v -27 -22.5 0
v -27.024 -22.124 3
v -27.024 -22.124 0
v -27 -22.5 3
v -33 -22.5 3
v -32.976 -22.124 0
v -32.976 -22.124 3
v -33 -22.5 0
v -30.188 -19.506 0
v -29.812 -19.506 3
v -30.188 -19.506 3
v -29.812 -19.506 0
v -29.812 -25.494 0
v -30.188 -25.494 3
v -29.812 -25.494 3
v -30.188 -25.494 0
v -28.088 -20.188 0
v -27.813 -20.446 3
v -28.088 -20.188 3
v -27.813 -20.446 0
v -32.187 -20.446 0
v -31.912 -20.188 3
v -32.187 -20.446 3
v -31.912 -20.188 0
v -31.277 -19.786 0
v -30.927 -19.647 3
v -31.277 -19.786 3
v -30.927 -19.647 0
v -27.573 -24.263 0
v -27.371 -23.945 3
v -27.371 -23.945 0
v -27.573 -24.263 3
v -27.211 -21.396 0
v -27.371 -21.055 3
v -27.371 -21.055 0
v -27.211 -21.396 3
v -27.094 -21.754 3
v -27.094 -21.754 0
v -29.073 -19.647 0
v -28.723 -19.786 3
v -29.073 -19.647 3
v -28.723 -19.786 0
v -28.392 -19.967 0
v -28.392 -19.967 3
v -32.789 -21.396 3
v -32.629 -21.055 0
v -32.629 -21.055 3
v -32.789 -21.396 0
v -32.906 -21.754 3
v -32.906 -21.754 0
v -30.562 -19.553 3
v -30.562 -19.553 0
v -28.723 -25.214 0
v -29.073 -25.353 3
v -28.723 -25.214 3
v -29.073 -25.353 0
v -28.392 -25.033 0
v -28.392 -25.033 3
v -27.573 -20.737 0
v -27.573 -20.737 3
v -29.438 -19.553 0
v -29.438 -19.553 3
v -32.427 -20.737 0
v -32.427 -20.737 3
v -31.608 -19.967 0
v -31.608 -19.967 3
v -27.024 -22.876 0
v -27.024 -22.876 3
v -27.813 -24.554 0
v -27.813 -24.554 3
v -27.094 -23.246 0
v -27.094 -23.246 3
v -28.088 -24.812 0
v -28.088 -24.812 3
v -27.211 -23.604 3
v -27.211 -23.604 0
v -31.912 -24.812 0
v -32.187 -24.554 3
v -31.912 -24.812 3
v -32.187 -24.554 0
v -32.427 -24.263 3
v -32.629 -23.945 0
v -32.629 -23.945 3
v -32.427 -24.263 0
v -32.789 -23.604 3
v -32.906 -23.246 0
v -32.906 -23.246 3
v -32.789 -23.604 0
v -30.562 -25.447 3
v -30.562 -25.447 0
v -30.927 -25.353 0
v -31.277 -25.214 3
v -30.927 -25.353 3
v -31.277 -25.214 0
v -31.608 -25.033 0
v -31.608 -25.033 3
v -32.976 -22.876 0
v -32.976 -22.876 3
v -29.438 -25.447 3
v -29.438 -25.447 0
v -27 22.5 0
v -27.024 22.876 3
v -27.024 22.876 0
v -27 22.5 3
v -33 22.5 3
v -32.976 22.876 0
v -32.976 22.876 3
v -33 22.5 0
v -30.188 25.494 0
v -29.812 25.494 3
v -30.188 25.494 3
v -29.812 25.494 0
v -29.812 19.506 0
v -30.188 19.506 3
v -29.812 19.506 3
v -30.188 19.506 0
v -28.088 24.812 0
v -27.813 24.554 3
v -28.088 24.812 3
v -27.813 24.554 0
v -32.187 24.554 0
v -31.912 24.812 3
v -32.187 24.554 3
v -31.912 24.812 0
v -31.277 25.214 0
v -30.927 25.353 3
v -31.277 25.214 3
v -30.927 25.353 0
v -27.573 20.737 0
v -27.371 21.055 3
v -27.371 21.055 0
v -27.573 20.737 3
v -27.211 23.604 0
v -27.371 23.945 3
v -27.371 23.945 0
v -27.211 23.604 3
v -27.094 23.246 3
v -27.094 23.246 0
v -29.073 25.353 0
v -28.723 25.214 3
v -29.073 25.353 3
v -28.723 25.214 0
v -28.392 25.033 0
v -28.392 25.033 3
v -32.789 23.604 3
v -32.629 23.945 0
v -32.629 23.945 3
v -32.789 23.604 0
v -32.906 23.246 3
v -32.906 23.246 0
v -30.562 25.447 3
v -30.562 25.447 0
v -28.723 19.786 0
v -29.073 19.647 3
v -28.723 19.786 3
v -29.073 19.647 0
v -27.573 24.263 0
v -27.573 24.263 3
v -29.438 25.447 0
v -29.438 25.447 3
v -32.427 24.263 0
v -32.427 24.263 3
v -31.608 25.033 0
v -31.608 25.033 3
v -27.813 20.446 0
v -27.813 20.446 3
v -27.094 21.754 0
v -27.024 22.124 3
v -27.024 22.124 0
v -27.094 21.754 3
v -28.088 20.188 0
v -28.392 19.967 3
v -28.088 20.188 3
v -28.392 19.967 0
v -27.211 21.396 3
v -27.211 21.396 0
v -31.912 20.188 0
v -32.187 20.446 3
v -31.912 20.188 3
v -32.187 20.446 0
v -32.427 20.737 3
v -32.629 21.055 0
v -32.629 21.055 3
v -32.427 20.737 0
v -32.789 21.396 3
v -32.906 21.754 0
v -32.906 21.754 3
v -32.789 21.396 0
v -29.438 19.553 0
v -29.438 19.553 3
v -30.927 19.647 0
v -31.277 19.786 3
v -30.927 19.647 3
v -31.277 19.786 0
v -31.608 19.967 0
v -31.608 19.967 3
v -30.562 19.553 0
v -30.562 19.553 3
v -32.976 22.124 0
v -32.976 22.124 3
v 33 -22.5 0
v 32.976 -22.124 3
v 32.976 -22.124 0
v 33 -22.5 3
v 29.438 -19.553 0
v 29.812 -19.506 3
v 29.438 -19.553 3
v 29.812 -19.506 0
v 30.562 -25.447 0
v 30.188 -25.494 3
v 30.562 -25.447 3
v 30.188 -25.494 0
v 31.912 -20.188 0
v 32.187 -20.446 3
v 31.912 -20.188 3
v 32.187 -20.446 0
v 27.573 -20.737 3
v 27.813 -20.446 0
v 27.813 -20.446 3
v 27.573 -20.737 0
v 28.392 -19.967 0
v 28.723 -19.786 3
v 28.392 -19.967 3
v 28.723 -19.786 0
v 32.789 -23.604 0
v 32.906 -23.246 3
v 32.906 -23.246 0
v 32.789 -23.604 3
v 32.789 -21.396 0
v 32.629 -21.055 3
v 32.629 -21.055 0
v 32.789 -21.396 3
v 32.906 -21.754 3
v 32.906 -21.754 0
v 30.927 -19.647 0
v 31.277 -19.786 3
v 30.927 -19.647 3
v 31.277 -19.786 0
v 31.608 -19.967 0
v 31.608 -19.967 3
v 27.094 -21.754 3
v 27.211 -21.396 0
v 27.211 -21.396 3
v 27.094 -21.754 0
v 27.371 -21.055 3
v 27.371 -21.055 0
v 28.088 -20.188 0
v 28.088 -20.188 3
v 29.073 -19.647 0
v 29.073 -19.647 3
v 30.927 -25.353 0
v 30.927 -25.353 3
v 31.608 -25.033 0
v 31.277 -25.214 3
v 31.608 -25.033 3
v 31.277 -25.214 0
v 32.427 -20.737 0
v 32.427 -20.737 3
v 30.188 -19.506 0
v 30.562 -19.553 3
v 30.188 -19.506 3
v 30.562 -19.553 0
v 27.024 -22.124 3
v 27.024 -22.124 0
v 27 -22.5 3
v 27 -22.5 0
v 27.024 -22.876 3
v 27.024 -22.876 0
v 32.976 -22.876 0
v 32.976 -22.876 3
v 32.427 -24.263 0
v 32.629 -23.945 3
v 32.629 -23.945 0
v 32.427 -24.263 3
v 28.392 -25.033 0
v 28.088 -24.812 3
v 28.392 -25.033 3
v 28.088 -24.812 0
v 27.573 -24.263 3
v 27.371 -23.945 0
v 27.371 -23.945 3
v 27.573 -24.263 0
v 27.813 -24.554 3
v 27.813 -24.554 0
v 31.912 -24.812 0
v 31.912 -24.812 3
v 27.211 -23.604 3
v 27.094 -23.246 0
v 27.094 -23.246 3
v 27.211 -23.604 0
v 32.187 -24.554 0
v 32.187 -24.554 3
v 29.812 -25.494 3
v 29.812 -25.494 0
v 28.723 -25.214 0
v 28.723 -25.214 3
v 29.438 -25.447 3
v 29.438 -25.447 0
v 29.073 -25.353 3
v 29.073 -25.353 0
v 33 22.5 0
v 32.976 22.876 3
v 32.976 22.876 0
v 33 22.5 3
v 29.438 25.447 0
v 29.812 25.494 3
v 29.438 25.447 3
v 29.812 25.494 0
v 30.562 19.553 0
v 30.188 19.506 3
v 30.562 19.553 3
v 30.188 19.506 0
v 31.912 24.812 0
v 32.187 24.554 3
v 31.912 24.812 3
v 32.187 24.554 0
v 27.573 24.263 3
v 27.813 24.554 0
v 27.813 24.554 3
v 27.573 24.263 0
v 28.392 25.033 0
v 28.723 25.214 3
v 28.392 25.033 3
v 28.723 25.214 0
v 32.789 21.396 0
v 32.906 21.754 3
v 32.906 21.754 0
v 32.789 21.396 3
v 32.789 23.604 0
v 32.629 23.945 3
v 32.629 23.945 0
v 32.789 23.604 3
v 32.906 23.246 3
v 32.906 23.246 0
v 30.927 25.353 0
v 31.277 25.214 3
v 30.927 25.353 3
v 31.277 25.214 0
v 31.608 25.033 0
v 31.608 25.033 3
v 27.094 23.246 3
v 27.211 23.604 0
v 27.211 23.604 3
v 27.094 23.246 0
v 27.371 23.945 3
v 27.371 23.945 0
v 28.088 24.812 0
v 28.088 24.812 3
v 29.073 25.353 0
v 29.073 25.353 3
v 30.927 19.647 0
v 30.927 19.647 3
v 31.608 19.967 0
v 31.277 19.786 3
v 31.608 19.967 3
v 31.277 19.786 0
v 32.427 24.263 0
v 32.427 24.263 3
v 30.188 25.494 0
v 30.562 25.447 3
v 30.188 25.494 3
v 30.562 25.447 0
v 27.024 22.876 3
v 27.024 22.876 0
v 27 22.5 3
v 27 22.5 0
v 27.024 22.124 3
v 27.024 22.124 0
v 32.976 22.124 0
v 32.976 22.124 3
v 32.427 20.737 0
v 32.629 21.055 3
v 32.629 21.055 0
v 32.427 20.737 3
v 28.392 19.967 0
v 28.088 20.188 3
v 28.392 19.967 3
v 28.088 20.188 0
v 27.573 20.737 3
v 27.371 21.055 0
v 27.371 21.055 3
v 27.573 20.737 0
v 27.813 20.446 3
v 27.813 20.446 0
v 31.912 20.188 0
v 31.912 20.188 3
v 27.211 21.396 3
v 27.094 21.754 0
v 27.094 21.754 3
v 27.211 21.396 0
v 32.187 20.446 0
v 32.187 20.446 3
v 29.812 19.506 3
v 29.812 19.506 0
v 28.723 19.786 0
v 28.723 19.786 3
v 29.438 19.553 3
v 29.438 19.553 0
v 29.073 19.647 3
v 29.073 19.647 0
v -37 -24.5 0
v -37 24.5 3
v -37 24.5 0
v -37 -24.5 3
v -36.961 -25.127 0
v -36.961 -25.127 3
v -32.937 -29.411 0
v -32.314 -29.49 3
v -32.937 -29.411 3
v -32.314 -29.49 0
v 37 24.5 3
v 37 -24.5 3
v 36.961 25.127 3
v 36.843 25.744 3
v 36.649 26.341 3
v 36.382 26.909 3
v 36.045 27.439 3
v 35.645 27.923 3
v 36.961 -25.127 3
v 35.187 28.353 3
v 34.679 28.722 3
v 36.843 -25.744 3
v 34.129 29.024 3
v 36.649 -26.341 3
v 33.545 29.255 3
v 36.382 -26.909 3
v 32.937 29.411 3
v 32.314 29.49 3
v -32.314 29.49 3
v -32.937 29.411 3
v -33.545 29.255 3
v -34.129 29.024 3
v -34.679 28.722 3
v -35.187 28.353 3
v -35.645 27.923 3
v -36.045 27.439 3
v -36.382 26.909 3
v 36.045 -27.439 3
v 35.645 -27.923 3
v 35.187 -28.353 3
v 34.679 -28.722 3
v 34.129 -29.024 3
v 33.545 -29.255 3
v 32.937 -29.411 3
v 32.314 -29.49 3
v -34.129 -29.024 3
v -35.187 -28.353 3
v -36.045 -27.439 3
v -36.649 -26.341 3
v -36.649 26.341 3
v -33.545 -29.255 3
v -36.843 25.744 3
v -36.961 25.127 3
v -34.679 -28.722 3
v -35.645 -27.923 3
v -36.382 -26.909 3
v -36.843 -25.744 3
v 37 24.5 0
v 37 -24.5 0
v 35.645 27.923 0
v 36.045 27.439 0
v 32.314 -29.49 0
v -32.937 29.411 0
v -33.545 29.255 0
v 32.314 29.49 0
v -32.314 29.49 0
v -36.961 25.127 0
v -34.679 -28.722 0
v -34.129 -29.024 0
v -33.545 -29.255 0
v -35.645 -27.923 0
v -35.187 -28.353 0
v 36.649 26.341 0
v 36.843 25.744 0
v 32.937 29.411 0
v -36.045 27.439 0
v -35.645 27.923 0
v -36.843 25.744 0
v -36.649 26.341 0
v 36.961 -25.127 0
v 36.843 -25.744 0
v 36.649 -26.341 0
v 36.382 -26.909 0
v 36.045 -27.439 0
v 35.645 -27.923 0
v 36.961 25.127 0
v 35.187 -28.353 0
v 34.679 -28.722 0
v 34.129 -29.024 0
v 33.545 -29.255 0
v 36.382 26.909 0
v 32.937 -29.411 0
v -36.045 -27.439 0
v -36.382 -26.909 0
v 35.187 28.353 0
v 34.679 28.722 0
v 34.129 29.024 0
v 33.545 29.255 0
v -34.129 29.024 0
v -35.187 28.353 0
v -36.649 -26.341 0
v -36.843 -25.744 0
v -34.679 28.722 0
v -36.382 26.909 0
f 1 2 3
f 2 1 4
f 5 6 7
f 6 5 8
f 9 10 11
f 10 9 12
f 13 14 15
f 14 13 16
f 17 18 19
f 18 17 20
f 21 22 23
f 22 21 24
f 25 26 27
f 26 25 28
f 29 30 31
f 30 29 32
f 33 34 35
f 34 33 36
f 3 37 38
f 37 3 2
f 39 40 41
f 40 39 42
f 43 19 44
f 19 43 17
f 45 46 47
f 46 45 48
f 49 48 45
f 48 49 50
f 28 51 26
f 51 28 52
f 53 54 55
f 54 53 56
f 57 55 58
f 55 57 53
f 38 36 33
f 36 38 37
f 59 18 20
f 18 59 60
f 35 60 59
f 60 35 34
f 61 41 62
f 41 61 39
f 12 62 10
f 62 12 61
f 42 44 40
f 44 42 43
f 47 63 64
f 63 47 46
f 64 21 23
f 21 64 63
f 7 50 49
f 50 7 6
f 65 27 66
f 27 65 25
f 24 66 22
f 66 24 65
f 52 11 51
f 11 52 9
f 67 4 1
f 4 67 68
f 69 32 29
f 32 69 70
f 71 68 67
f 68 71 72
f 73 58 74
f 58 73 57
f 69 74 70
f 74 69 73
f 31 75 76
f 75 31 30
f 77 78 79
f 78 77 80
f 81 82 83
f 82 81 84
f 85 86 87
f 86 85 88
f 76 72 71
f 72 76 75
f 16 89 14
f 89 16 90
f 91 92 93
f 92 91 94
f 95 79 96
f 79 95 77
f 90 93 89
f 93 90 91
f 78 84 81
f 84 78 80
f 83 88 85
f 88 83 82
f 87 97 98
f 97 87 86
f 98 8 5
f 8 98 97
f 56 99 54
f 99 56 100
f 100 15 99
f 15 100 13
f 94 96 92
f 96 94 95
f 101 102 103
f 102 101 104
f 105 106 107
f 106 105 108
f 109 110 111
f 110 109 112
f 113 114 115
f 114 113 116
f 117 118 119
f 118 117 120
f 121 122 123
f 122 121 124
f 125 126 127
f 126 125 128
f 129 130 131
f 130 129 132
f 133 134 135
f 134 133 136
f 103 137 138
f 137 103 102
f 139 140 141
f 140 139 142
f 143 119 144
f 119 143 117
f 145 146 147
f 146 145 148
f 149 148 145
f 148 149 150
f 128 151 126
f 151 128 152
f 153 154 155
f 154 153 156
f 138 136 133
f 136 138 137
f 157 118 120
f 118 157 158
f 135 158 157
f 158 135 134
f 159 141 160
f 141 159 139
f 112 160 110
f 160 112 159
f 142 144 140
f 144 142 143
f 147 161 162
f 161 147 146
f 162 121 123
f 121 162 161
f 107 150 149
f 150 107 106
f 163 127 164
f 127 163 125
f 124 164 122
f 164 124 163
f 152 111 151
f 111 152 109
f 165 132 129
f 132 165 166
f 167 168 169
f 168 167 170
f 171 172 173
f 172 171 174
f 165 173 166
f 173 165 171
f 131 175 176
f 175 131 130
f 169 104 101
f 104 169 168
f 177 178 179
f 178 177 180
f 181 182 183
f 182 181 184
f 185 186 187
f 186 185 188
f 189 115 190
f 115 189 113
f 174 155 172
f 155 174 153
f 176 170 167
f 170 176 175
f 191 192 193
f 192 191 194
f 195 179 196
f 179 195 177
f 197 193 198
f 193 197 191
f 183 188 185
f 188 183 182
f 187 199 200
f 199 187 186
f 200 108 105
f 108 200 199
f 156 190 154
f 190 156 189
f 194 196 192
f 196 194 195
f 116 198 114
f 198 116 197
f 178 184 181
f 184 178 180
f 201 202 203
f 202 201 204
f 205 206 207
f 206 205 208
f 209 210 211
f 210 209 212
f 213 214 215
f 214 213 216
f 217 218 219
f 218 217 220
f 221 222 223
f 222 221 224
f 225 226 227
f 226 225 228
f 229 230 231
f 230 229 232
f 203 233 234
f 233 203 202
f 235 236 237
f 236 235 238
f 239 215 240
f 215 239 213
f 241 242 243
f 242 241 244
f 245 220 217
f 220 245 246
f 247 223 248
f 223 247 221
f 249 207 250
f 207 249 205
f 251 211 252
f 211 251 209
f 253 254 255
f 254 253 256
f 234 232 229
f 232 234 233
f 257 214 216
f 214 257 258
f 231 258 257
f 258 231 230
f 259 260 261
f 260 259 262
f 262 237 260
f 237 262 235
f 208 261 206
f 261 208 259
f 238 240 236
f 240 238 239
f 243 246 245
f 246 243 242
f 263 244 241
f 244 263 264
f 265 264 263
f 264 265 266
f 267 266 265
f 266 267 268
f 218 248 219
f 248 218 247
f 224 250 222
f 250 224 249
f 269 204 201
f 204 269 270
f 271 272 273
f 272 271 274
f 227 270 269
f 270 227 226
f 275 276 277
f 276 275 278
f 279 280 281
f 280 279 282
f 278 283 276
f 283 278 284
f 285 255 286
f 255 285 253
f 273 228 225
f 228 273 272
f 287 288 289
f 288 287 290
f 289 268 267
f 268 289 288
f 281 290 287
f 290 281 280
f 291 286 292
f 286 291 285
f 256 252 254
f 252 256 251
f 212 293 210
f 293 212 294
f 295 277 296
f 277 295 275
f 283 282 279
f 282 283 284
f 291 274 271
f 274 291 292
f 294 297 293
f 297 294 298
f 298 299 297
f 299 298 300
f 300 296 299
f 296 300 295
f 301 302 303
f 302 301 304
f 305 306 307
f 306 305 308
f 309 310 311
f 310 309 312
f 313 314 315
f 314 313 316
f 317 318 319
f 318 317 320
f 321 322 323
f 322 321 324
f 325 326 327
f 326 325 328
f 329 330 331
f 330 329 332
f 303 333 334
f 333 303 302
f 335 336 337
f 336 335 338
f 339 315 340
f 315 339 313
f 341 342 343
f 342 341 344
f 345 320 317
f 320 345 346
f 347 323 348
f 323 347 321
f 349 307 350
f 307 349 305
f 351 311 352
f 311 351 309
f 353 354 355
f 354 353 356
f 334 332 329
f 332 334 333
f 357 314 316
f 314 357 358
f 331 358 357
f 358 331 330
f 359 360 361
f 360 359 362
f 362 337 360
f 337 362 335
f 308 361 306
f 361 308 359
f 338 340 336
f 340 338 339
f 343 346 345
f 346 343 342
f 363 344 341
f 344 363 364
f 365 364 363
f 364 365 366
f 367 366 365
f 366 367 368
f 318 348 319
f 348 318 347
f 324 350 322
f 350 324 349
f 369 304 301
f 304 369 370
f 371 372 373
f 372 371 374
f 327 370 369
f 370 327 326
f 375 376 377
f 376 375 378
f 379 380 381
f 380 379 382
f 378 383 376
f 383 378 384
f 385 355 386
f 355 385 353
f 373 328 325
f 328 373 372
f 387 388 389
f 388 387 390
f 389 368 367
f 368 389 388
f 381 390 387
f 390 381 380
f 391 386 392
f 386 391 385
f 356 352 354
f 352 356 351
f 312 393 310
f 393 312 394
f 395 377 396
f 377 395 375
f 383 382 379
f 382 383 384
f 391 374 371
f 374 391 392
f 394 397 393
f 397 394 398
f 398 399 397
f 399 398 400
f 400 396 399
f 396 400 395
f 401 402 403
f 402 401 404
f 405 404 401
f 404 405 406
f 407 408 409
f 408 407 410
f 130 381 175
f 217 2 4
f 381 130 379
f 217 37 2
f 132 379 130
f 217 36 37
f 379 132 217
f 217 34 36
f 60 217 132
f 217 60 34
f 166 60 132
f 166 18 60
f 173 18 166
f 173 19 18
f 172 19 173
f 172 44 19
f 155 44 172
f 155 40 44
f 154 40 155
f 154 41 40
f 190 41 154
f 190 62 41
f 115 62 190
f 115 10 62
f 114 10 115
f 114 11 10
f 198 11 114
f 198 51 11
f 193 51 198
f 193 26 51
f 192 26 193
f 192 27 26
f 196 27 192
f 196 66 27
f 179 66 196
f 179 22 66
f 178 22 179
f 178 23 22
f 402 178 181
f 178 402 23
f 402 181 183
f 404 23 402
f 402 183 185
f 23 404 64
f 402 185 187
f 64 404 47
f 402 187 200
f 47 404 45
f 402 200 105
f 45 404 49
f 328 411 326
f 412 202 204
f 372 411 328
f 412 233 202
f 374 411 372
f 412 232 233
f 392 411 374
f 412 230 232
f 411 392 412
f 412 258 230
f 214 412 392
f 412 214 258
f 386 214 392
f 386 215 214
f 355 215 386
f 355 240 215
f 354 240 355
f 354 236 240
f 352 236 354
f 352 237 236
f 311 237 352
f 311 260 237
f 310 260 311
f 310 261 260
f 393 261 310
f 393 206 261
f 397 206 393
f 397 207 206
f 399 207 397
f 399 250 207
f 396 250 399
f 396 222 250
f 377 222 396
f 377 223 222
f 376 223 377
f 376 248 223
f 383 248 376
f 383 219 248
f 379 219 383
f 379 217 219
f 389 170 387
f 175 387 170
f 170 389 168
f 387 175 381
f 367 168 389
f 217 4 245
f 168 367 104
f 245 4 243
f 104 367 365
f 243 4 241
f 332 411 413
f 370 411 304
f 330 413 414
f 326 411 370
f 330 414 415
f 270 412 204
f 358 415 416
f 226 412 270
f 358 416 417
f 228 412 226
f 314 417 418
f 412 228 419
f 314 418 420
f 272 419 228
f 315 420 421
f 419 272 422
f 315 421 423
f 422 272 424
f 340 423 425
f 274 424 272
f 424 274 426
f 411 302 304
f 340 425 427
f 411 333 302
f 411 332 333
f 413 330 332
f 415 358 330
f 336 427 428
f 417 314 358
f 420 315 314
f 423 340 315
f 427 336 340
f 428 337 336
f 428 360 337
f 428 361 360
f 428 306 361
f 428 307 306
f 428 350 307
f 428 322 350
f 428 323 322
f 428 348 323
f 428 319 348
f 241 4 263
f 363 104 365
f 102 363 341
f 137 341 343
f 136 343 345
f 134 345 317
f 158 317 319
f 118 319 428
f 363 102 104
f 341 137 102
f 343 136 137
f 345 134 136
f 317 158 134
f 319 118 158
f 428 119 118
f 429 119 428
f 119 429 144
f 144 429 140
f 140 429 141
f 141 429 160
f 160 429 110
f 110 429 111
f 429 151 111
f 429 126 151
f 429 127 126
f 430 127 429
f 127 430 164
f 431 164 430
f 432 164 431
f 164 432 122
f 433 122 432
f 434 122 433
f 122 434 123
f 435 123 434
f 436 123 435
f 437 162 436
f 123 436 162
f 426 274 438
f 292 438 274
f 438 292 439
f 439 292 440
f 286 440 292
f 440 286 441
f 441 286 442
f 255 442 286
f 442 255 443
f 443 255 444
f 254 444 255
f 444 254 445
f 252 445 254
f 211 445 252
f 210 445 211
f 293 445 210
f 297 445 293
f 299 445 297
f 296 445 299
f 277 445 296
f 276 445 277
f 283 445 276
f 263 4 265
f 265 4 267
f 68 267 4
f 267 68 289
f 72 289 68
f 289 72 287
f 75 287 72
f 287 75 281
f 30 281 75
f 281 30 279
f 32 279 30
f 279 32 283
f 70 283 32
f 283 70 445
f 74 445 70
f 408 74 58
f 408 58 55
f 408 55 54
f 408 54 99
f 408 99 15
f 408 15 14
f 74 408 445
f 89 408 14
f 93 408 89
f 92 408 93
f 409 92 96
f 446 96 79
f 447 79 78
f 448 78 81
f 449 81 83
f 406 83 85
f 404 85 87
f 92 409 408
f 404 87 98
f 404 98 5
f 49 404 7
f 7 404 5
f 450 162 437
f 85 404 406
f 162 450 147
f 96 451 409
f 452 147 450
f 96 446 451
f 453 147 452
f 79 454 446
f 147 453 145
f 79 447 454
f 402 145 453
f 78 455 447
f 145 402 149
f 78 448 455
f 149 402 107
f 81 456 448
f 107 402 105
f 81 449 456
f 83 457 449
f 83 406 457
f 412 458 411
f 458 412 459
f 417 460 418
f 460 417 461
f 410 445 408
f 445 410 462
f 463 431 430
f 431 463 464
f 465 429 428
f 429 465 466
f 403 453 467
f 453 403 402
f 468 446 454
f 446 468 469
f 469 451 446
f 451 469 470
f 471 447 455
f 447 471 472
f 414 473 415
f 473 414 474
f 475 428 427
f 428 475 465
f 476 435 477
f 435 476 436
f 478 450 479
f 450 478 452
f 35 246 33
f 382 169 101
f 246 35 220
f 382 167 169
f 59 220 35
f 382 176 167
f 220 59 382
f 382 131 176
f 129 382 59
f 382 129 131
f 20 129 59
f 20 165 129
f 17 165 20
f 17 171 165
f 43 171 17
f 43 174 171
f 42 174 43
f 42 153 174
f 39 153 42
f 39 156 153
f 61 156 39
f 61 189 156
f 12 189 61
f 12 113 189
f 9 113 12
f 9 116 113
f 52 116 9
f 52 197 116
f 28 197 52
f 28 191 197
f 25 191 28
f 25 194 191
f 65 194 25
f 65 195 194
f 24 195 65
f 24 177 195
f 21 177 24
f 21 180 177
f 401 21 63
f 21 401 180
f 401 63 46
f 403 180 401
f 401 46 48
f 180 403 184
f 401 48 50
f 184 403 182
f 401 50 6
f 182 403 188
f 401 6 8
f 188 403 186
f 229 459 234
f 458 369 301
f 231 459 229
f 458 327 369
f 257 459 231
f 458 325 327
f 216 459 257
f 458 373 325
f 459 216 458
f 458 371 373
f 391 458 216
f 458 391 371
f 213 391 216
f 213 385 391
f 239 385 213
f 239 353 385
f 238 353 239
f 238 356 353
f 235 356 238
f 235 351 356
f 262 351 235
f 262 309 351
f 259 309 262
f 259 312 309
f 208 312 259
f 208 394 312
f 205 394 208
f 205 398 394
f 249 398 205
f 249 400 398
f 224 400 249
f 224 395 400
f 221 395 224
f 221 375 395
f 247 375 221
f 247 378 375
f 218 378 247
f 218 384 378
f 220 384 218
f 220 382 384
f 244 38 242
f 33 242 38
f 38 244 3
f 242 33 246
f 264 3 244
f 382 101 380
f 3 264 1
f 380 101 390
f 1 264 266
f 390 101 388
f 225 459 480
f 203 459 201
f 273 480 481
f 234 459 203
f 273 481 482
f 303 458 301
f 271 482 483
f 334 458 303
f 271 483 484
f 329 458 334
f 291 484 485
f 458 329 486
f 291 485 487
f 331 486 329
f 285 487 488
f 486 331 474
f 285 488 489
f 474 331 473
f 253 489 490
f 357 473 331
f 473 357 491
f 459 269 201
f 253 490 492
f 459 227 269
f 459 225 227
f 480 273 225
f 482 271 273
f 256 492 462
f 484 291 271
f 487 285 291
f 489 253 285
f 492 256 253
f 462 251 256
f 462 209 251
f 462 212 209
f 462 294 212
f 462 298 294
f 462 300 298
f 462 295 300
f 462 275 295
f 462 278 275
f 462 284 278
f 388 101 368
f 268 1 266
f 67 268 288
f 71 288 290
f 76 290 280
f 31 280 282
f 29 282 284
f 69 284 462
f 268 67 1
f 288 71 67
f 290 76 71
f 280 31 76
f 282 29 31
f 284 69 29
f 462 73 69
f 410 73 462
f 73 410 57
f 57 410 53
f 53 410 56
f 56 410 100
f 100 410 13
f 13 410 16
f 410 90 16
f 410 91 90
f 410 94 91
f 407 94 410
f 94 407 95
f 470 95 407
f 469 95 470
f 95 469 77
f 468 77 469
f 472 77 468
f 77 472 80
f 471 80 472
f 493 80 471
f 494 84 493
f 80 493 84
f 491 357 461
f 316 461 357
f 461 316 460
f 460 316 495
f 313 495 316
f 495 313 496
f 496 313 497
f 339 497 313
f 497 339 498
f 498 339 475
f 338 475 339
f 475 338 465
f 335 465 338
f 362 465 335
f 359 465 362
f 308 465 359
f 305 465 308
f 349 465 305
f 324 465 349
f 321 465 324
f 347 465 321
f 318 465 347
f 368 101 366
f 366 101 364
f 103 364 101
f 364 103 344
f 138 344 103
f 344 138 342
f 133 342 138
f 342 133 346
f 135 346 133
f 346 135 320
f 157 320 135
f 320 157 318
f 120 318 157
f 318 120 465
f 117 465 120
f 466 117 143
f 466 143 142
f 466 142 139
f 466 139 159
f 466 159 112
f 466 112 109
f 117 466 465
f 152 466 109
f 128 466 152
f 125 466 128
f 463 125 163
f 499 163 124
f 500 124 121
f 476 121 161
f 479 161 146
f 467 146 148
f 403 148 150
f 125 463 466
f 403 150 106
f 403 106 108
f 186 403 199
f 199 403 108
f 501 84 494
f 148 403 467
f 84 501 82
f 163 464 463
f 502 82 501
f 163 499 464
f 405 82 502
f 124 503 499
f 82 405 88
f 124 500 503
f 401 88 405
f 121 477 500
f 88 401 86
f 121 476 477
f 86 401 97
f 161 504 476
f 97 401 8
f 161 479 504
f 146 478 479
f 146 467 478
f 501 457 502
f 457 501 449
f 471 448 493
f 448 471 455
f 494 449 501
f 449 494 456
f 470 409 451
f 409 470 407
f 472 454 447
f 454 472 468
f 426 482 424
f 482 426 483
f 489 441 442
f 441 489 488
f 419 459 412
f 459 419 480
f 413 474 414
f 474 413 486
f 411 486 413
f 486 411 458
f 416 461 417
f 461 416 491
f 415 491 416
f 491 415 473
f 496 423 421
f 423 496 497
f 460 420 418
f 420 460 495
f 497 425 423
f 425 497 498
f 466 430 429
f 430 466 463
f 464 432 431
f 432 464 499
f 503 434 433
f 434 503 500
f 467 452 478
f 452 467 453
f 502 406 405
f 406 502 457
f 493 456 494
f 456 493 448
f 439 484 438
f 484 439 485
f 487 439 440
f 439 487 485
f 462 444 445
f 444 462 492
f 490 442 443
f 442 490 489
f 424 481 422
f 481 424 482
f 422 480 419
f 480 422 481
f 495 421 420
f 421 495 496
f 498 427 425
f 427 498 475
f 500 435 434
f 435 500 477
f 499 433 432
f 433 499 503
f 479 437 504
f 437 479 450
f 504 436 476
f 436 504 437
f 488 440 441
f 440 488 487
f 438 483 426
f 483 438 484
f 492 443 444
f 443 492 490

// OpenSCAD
$fn = 50;


difference() {
	union() {
		hull() {
			translate(v = [-32.0000000000, 24.5000000000, 0]) {
				cylinder(h = 3, r = 5);
			}
			translate(v = [32.0000000000, 24.5000000000, 0]) {
				cylinder(h = 3, r = 5);
			}
			translate(v = [-32.0000000000, -24.5000000000, 0]) {
				cylinder(h = 3, r = 5);
			}
			translate(v = [32.0000000000, -24.5000000000, 0]) {
				cylinder(h = 3, r = 5);
			}
		}
	}
	union() {
		translate(v = [-30.0000000000, -22.5000000000, -100.0000000000]) {
			cylinder(h = 200, r = 3.0000000000);
		}
		translate(v = [-30.0000000000, 22.5000000000, -100.0000000000]) {
			cylinder(h = 200, r = 3.0000000000);
		}
		translate(v = [30.0000000000, -22.5000000000, -100.0000000000]) {
			cylinder(h = 200, r = 3.0000000000);
		}
		translate(v = [30.0000000000, 22.5000000000, -100.0000000000]) {
			cylinder(h = 200, r = 3.0000000000);
		}
	}
}
